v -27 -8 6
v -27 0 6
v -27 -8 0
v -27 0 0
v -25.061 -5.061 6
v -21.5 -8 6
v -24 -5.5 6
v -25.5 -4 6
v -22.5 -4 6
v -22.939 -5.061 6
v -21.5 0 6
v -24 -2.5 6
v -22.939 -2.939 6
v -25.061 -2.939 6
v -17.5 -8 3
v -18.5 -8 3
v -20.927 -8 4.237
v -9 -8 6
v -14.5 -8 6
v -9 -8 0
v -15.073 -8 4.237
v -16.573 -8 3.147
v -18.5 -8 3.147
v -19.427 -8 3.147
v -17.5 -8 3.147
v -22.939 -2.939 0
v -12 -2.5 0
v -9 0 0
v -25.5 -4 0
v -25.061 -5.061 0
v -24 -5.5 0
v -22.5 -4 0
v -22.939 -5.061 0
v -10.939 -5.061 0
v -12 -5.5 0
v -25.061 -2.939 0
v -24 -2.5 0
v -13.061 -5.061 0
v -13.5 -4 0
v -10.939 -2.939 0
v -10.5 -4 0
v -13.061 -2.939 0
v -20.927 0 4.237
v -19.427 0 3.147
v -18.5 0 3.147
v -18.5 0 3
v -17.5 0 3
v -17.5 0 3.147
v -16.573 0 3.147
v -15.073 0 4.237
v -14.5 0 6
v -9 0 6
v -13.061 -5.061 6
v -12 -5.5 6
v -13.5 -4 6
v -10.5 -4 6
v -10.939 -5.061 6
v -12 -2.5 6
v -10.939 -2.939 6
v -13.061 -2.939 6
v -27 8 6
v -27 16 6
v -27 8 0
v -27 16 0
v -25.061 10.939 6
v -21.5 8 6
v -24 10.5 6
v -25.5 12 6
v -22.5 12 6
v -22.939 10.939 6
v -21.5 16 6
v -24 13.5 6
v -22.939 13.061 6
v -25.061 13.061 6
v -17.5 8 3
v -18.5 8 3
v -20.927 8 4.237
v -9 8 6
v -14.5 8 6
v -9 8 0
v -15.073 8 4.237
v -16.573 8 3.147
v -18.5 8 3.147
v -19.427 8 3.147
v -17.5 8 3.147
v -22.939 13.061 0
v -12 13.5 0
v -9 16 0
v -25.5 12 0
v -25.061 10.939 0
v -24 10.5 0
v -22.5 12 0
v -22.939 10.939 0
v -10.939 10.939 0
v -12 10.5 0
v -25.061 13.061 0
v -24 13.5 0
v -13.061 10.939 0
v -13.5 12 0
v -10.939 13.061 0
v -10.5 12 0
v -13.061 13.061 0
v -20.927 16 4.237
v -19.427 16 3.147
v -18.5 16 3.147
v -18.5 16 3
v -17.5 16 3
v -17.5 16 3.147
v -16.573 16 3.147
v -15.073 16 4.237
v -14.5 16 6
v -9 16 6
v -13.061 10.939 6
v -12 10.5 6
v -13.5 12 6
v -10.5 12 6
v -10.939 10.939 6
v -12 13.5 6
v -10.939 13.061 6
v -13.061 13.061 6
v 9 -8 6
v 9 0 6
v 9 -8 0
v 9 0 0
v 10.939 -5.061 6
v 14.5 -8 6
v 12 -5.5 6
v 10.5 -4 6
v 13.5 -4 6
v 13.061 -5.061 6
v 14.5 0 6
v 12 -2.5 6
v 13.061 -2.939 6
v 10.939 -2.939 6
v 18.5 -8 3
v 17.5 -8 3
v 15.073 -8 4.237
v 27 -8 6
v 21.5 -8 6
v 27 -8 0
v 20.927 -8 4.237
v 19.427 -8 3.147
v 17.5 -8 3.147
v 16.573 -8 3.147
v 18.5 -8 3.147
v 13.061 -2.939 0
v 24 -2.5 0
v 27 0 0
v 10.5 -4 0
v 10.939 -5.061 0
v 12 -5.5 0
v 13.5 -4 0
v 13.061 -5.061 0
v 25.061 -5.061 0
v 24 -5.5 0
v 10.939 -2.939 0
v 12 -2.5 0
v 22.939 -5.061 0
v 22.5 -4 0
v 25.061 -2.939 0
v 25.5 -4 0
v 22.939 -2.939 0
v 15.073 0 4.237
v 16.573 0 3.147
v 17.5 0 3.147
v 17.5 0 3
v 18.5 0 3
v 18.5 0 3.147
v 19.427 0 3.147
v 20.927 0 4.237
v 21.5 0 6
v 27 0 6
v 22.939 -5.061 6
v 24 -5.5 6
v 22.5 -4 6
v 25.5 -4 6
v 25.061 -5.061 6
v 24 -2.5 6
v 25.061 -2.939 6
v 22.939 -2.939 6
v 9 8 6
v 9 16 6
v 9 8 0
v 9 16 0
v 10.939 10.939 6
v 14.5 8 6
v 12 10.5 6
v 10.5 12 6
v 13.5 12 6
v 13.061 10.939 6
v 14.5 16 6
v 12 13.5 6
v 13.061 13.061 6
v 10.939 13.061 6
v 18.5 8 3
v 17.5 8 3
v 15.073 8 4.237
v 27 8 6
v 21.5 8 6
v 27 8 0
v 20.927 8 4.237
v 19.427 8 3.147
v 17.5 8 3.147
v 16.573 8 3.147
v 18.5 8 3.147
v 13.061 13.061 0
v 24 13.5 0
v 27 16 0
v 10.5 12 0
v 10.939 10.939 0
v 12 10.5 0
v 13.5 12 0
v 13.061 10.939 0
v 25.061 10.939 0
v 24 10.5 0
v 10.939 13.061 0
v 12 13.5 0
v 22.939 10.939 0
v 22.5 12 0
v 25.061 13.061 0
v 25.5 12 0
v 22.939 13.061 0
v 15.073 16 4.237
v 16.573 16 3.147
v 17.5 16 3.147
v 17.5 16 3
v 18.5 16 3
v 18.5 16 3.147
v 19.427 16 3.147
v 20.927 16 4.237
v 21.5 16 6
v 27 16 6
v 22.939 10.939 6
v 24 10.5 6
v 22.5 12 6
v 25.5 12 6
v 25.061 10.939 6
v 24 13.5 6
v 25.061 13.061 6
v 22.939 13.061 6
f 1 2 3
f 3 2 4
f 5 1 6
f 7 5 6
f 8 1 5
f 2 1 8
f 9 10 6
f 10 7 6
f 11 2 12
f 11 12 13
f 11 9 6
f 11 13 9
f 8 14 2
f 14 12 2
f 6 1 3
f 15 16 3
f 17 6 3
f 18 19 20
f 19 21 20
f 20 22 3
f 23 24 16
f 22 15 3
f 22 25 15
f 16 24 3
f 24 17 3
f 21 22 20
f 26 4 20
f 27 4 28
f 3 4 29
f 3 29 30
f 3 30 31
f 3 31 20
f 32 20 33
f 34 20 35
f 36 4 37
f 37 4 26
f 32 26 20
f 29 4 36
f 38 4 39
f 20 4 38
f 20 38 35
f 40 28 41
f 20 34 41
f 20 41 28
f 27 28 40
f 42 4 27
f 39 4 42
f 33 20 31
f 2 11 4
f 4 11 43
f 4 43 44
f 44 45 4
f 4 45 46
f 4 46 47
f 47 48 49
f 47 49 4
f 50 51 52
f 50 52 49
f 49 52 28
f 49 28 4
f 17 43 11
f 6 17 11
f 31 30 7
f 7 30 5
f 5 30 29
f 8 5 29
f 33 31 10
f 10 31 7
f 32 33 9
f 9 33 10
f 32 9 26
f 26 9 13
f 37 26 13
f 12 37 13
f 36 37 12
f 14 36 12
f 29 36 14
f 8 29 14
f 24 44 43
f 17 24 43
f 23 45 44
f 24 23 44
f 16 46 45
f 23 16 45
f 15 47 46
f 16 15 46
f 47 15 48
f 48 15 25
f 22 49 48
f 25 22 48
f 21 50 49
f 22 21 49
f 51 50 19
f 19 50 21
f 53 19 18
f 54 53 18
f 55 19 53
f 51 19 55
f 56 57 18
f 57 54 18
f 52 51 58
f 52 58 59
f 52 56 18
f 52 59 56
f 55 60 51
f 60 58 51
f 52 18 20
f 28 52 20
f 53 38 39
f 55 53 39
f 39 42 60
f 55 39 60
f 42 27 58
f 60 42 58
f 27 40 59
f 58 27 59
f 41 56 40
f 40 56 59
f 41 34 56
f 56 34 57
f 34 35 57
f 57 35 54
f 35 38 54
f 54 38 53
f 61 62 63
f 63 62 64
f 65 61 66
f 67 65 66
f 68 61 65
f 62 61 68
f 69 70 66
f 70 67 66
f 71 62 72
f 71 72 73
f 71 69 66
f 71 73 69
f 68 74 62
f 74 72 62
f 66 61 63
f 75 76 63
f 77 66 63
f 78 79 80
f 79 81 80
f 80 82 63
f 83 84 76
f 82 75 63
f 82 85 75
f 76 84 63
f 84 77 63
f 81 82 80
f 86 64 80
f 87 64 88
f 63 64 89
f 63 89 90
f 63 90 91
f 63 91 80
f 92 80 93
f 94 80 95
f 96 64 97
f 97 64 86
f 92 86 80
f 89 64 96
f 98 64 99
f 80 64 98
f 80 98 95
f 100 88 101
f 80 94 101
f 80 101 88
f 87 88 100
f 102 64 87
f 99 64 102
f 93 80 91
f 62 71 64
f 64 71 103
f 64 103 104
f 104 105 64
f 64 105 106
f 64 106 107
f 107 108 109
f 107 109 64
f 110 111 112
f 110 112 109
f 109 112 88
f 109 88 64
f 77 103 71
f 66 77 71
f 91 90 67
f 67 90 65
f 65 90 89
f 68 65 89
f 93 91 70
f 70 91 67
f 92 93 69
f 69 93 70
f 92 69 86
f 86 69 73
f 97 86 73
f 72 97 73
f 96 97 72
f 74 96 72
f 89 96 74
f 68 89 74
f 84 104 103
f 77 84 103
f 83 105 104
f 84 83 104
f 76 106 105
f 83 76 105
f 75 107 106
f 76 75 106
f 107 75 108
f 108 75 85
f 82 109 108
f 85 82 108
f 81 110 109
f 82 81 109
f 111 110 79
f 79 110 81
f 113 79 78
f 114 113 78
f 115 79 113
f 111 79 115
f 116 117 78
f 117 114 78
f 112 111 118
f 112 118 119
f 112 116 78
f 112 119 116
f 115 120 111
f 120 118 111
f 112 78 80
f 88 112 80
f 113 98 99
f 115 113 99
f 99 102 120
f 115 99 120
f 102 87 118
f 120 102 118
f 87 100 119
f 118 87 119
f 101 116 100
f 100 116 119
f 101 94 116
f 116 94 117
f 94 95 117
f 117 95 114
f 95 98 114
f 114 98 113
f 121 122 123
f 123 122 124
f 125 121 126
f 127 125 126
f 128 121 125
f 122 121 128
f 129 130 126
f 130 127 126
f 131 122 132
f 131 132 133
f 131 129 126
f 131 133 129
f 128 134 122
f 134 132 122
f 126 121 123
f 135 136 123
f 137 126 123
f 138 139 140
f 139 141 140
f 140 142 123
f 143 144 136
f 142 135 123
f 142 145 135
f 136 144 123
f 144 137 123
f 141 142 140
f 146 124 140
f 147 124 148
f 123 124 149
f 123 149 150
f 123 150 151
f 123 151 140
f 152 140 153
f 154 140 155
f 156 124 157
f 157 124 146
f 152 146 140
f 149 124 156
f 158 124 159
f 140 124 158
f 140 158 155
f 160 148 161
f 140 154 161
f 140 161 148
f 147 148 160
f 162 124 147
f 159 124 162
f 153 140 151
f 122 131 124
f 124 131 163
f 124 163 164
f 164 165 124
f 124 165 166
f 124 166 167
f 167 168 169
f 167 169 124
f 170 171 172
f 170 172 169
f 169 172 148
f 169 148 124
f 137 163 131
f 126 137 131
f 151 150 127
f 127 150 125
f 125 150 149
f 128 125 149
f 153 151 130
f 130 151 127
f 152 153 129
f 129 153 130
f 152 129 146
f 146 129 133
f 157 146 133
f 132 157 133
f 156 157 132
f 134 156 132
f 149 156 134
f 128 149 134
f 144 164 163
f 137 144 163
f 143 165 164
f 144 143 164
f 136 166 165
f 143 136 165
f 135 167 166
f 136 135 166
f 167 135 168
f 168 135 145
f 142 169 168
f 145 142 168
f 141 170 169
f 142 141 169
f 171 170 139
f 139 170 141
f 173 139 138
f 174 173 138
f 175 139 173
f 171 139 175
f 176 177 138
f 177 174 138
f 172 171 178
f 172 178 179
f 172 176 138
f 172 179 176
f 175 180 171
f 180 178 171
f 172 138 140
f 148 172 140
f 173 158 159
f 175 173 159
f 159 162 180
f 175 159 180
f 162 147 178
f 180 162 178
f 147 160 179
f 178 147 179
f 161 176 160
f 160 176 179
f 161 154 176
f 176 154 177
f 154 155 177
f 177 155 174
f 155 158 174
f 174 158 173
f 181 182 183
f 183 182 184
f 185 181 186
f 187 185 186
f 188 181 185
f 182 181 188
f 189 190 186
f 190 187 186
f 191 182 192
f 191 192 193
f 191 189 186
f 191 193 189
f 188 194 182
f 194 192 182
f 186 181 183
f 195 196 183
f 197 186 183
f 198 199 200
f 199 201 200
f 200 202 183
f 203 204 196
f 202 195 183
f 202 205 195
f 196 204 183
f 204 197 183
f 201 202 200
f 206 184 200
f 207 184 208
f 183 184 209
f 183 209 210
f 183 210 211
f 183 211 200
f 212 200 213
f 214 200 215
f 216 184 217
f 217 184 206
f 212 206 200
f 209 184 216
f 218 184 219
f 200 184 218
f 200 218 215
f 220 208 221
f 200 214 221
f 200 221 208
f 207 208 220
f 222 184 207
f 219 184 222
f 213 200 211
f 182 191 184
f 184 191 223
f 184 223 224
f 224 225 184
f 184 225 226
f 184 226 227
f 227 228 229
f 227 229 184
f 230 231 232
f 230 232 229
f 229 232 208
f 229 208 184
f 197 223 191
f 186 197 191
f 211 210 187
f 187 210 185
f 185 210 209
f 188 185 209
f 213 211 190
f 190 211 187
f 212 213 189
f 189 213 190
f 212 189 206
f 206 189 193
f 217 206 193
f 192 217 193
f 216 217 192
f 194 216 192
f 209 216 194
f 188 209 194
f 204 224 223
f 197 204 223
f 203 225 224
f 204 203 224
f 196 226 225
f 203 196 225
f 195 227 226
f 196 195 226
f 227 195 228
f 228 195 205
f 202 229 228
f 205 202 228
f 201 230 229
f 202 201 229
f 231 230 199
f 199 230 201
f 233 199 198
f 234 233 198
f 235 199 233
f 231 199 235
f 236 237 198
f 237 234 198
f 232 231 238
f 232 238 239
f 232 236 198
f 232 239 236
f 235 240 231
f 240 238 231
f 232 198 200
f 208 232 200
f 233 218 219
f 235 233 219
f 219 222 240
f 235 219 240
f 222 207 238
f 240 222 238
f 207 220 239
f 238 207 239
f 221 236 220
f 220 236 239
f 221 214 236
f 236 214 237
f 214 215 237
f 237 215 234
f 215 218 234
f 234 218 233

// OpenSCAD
module CableClip(len,wid,hgt,intht,intwd,pitch,holedia)
{
	d2 = intwd-(2*intht);
	d1 = d2/2;
	rotate([-90,0,0]) translate([0,-hgt,0])
		difference()
		{
			// Block
			translate([-0.5*len,0*wid,0*hgt]) cube([len,hgt,wid], center=false);
			// Cable hole
			translate([-d1,0,-wid/2]) cylinder(r=intht,h=wid*2);
			translate([-d1,-intht,-wid/2]) cube([d2,intht*2,wid*2], center=false);
			translate([+d1,0,-wid/2]) cylinder(r=intht,h=wid*2);
			// Screw holes
			translate([-pitch/2,-hgt/2,wid/2]) rotate([-90,0,0]) cylinder(r=holedia/2, h=hgt*2, $fn=8);
			translate([+pitch/2,-hgt/2,wid/2]) rotate([-90,0,0]) cylinder(r=holedia/2, h=hgt*2, $fn=8);
		}
	//translate([-d1,-intht,-wid/2]) cube([d2,intht*2,wid*2], center=false);
	//translate([-pitch/2,-hgt/2,wid/2]) rotate([-90,0,0]) cylinder(r=holedia/2, h=hgt*2, $fs=0.7);
	
}


l = 18;
w = 8;

for (i = [-l, l])
{
	for (j = [-w, w])
	{
		translate([i,j,0]) CableClip(l,w,6, 3,7, 12,3);
	}
}
